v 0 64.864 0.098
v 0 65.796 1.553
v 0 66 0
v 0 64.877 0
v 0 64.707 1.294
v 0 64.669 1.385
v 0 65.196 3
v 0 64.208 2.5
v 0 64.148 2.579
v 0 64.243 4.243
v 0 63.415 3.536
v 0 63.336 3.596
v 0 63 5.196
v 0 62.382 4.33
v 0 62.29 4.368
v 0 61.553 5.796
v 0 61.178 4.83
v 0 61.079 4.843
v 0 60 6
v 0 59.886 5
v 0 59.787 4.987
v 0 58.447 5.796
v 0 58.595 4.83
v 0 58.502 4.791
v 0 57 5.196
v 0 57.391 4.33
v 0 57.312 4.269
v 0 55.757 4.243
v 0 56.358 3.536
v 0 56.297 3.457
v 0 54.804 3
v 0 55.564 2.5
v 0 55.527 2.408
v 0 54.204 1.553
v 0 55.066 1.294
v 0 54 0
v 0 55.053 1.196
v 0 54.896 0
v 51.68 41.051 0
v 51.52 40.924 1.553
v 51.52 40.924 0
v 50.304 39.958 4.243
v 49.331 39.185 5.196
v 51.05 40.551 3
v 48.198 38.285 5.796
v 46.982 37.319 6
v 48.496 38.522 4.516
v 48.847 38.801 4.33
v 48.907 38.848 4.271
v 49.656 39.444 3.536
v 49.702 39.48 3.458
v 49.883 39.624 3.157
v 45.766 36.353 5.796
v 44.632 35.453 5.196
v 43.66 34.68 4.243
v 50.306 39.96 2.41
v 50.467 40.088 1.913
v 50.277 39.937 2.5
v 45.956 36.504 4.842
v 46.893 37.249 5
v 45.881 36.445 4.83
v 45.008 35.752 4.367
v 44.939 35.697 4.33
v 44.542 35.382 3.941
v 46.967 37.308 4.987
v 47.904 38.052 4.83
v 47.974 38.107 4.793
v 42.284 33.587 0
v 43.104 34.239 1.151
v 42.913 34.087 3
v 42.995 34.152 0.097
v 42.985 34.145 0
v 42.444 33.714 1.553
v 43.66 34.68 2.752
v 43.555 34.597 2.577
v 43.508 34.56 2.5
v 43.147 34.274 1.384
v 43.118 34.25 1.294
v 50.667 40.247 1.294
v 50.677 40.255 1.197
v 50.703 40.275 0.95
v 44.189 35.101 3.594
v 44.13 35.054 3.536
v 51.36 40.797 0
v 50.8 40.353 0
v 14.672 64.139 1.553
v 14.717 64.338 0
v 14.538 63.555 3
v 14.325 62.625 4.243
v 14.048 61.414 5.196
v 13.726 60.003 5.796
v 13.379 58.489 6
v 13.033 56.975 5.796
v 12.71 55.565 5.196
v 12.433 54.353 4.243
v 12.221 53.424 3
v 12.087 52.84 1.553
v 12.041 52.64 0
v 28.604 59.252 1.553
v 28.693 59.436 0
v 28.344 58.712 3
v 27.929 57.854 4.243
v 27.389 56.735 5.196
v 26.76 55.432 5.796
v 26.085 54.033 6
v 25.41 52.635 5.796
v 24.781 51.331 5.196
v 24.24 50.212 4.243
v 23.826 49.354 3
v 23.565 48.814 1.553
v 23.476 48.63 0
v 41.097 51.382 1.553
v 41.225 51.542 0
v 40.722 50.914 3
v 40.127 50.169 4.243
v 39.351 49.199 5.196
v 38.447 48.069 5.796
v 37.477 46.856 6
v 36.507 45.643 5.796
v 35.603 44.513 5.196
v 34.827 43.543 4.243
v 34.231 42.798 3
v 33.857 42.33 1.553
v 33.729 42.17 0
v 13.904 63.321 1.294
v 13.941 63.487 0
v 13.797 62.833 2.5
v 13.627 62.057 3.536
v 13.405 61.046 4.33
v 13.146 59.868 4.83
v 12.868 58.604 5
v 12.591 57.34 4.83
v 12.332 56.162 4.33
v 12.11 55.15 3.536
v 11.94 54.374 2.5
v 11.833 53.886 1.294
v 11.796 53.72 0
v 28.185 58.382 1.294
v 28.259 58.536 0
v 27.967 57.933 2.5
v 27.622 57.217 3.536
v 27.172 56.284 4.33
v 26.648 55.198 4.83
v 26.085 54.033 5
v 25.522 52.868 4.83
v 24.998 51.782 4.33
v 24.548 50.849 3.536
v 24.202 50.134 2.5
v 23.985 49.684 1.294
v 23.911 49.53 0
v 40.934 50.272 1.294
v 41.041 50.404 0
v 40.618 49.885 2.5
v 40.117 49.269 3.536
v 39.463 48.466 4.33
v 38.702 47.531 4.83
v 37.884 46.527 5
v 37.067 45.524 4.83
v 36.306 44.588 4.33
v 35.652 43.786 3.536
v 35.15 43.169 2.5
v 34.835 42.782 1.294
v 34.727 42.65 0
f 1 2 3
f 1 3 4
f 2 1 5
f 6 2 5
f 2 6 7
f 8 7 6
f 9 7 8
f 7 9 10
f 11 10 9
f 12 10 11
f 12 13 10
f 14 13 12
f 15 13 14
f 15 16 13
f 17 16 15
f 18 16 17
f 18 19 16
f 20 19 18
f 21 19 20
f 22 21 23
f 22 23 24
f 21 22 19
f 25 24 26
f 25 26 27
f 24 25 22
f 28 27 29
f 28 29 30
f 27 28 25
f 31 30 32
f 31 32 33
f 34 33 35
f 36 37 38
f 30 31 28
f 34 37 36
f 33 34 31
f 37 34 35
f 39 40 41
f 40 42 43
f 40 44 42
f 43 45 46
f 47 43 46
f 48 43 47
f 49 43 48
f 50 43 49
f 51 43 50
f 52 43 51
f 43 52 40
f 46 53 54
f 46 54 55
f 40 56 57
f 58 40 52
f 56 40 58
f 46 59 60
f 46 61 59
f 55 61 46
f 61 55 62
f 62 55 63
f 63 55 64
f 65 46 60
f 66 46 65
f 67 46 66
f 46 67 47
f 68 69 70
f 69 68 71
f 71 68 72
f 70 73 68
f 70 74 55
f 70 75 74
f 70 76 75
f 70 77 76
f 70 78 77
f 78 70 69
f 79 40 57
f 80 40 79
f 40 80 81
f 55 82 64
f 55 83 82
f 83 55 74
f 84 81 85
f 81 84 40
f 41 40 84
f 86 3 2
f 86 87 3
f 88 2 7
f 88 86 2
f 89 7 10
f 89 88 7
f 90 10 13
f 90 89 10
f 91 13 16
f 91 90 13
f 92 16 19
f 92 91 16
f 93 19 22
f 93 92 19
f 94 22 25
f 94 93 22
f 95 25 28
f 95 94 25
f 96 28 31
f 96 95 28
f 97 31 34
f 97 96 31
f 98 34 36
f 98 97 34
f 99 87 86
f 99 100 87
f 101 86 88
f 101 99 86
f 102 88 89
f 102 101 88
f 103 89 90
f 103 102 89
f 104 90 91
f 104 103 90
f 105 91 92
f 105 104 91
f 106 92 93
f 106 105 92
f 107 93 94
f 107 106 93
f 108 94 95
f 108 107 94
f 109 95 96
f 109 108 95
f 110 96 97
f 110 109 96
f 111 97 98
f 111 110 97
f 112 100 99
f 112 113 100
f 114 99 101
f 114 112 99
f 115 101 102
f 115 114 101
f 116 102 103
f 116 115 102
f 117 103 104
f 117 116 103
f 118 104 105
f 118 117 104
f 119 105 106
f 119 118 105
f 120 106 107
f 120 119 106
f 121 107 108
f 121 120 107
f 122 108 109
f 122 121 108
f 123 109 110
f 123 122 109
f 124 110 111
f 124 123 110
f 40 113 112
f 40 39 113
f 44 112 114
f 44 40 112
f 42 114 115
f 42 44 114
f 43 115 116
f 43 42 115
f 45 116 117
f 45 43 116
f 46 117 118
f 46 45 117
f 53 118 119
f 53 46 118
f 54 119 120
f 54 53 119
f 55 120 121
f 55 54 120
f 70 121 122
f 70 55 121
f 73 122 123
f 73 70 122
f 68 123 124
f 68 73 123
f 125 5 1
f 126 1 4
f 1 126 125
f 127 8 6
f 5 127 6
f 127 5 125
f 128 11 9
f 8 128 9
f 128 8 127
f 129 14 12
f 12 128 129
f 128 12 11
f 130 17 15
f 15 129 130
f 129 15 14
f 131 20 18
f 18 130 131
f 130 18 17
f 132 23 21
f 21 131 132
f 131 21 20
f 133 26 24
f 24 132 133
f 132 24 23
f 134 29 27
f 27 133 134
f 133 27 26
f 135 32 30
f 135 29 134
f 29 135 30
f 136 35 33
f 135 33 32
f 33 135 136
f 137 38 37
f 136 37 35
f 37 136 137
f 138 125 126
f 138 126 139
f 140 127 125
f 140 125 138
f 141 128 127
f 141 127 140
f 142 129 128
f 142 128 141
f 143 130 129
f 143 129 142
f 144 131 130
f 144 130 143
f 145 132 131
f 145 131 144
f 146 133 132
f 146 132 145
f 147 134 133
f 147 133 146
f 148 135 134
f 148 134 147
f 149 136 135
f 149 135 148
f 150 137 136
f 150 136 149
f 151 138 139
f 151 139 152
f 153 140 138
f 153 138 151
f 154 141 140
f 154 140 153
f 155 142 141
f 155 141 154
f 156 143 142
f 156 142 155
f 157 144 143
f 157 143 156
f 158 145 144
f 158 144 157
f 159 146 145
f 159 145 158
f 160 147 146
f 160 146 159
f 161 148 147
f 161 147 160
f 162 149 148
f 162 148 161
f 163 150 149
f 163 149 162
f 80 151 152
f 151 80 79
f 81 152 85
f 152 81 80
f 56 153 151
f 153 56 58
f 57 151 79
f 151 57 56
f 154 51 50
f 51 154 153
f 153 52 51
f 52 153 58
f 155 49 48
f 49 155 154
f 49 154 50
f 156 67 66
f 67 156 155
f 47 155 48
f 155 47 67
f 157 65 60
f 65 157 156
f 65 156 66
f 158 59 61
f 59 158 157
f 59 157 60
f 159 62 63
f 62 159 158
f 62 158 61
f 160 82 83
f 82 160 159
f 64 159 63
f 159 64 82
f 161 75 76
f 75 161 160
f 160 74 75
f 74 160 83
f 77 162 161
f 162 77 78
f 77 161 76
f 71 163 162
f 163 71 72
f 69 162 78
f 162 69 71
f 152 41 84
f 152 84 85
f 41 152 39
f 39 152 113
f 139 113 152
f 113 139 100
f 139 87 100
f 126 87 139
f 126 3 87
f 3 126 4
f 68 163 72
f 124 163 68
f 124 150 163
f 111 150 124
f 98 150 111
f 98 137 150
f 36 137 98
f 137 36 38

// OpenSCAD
// file: ../build_environments.scad
// build_environments.scad: modules to build level sections
//

module pool(diameter=10.0, wall_height=2.0, step_width=3.0, connections=[])
{
    difference() {
        union() {
        difference() {
            cylinder(h=0.5,r1=diameter+step_width,r2=diameter+step_width,$fn=48);
            translate([0,0,-0.1])
                cylinder(h=0.7,r1=diameter,r2=diameter,$fn=48);
        }
        difference() {
            cylinder(h=wall_height,r1=diameter+step_width+1.0,r2=diameter+step_width+1.0,$fn=48);
            translate([0,0,-0.1])
                cylinder(h=wall_height+0.2,r1=diameter+step_width,r2=diameter+step_width,$fn=48);
        }
        }
    
        for (c = connections)
        {
            rotate([0,90,0]) {
                angle = atan2(c[1],c[0]);
                rotate([-angle,0,0]) {
                    cylinder(h=diameter+5.0,r1=c[2],r2=c[2],$fn=48);
                }
            }
        }
    }
}

module straight(length=10.0, width=2.0, dy1=0.0, dy2=0.0, dz=0.0)
{
    dims = [0, 0, 0, 0, 0, (dz/length)];
    matrix = [
        [ 1, dims[0], dims[1], 0 ],
        [ dims[2], 1, dims[4], 0 ],
        [ dims[5], dims[3], 1, 0 ],
        [ 0, 0, 0, 1 ]
    ];
    multmatrix(matrix)
    difference() {
        translate([dy1,0,0])
        union() {
            rotate([0,90,0]) {
                difference() {
                    cylinder(h=(length-dy1-dy2),r1=width+1.0,r2=width+1.0,$fn=24);
                    translate([0,0,-0.1])
                        cylinder(h=(length-dy1-dy2+0.2),r1=width,r2=width,$fn=24);
                }
                difference() {
                    cylinder(h=1.0,r1=width+2.0,r2=width+2.0,$fn=24);
                    translate([0,0,-0.1])
                        cylinder(h=1.2,r1=width,r2=width,$fn=24);
                }
                translate([0,0,(length-dy1-dy2)-1.0]) {
                    difference() {
                        cylinder(h=1.0,r1=width+2.0,r2=width+2.0,$fn=24);
                        translate([0,0,-0.1])
                            cylinder(h=1.2,r1=width,r2=width,$fn=24);
                    }
                }
            }
        }
        translate([0,0,-(2*width+4.0)/2])
            cube([3*length,3*length,2*width+4.0],center=true);
    }
}

module curve(p0=[0,0], center=[0,0], dir=1, angle=0.0, width=2.0)
{
    radius = sqrt((p0[0]-center[0])*(p0[0]-center[0]) + (p0[1]-center[1])*(p0[1]-center[1]));
    if (dir == 0) {
        difference() {
            rotate([0,0,-90])
            difference() {
                rotate_extrude(angle = angle, convexity = 10, $fn=32)
                    translate([radius, 0, 0])
                        circle(r = width+1.0,$fn=24);
                rotate([0,0,-1.0])
                    rotate_extrude(angle = angle+2.0, convexity = 10, $fn=32)
                        translate([radius, 0, 0])
                            circle(r = width,$fn=24);
            }
            translate([0,0,-(2*width+4.0)/2])
                cube([5*radius,5*radius,2*width+4.0],center=true);
        }
    }
    else {
        difference() {
            rotate([0,0,90])
            difference() {
                rotate_extrude(angle = -angle, convexity = 10, $fn=32)
                    translate([radius, 0, 0])
                        circle(r = width+1.0,$fn=24);
                rotate([0,0,1.0])
                    rotate_extrude(angle = -angle-2.0, convexity = 10, $fn=32)
                        translate([radius, 0, 0])
                            circle(r = width,$fn=24);
            }
            translate([0,0,-(2*width+4.0)/2])
                cube([5*radius,5*radius,2*width+4.0],center=true);
        }
    }

}

// test pool
//pool(diameter=12.0000, wall_height=3.0000, step_width=3.0000, connections=[[0.0000,-26.0000,2.0000], [23.6074,0.0000,2.0000]]);

// test straight, slope
//straight(length=26.0000, width=2.0000, dy1=11.8322, dy2=6.7082, dz=0.0000);
//straight(length=29.1549, width=12.0000, dy1=0.0000, dy2=0.0000, dz=-15.0000);

// test curve
//curve(p0=[23.6074, 0.0000], center=[23.6074, 5.0000], dir=0, angle=60.1011, width=2.0000);
//curve(p0=[33.6426, 12.4219], center=[37.9771, 9.9295], dir=1, angle=120.4627, width=2.0000);
// main file
use <../build_environments.scad>;
curve(p0=[-53.1530, -136.8108], center=[-5.1414, -172.7953], dir=1, angle=51.5386, width=5.0000);
